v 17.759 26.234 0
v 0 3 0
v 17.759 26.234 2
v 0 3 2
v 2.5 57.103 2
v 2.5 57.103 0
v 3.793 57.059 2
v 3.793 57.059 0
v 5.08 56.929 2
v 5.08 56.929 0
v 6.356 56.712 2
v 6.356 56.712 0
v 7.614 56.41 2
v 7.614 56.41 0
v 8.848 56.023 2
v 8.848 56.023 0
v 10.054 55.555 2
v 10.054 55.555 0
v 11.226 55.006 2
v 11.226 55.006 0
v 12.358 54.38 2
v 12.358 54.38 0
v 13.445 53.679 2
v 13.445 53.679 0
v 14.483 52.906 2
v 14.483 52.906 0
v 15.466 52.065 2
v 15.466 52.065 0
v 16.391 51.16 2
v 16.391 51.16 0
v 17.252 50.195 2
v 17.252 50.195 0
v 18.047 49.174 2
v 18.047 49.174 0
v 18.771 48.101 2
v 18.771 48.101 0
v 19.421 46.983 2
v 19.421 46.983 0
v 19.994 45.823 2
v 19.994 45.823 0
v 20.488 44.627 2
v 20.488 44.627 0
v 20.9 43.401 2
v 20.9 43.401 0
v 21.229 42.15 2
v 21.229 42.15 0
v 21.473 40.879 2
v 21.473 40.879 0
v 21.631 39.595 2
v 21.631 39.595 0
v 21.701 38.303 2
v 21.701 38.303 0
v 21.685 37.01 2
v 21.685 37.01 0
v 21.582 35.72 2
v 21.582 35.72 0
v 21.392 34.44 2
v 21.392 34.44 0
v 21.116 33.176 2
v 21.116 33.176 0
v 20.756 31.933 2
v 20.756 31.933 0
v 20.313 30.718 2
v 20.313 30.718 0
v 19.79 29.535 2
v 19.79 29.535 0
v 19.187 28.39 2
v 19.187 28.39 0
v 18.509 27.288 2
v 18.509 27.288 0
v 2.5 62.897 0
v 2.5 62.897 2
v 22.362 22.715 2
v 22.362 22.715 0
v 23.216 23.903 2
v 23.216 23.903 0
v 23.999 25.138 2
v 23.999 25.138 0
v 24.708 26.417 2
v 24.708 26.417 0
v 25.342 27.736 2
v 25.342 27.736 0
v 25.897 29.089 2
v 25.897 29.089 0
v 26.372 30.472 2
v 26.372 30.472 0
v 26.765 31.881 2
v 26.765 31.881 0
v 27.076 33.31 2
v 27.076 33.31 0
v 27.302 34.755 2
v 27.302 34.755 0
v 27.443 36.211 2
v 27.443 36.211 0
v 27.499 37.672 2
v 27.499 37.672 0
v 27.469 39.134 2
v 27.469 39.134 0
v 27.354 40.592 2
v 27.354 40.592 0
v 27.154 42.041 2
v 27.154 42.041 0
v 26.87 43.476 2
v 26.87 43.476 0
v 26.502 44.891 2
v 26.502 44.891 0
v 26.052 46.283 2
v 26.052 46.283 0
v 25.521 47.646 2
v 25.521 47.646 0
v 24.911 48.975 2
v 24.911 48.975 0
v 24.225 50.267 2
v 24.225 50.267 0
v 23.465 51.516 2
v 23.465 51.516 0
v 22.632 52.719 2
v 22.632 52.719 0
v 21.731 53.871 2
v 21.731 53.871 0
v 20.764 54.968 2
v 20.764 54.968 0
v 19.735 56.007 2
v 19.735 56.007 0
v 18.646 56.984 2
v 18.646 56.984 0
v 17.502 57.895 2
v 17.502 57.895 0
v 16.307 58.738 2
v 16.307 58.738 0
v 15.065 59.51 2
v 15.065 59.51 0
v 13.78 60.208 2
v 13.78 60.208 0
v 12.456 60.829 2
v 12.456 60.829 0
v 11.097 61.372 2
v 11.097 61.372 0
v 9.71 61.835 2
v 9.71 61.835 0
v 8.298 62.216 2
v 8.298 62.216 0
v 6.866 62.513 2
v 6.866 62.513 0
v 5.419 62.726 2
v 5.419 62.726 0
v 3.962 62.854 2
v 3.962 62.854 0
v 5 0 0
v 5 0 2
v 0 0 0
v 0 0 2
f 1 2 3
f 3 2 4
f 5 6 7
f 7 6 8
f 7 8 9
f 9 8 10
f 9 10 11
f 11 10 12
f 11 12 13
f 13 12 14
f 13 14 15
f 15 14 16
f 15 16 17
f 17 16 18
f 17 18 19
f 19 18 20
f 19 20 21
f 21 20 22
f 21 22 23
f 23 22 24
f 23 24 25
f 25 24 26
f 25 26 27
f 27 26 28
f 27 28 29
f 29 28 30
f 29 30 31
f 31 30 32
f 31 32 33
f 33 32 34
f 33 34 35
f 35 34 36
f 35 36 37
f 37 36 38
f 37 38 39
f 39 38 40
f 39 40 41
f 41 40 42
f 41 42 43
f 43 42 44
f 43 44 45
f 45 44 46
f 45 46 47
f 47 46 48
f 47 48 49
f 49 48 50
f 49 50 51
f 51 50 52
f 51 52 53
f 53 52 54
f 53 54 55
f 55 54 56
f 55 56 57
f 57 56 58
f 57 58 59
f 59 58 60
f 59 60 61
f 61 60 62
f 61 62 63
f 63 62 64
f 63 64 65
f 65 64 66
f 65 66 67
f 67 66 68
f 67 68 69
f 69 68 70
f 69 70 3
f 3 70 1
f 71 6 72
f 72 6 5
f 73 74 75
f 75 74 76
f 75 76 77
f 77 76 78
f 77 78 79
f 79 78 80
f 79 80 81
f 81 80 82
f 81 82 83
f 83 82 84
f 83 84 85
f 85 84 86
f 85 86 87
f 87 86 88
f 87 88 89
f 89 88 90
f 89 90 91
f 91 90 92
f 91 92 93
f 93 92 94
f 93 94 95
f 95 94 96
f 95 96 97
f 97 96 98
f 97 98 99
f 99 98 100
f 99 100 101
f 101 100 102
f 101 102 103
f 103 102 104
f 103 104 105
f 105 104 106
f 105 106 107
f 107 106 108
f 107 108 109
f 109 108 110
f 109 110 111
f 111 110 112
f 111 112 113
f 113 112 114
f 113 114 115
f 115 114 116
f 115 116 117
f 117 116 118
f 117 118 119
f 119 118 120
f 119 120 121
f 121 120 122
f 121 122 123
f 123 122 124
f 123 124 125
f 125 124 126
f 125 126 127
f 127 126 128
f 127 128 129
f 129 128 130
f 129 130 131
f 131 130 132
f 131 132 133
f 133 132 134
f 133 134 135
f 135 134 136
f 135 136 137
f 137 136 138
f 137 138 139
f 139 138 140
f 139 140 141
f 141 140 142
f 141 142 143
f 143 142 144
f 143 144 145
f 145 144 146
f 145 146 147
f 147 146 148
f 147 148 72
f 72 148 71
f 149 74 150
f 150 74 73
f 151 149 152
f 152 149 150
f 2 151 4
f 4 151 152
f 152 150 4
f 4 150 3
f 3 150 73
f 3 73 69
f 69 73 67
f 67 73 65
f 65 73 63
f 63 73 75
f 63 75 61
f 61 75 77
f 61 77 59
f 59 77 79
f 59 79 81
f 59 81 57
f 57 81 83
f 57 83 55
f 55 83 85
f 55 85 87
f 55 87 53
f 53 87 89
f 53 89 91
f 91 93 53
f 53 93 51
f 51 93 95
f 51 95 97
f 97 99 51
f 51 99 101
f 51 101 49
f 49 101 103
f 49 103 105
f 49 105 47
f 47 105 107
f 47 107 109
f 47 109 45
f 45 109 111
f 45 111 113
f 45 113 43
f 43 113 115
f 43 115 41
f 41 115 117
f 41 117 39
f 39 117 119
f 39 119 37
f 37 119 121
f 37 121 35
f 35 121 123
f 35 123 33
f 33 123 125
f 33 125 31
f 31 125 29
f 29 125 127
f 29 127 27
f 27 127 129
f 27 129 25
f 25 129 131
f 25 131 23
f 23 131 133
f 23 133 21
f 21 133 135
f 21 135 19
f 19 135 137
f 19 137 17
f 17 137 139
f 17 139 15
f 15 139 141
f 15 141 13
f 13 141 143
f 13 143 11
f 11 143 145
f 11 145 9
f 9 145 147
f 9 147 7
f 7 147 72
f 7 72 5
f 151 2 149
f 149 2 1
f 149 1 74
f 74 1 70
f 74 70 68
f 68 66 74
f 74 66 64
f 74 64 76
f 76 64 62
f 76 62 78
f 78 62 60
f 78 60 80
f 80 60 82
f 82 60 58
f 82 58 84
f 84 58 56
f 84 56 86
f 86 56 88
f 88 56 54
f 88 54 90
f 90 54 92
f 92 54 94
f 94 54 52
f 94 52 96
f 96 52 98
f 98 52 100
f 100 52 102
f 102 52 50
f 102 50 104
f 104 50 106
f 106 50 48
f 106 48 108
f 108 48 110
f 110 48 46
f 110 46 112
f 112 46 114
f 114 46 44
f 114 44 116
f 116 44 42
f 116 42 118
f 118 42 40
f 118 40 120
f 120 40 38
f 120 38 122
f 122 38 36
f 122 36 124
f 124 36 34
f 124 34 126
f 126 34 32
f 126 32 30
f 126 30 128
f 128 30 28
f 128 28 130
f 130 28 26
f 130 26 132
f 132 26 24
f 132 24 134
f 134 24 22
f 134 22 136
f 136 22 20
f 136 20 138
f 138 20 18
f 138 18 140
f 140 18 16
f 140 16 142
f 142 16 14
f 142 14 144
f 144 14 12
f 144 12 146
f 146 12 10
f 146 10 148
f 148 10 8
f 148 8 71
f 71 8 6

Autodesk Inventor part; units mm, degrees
ref_plane "YZ Plane" through (0, 0, 0) normal (1, 0, 0) x (0, 1, 0)
ref_plane "XZ Plane" through (0, 0, 0) normal (0, 1, 0) x (-1, 0, 0)
ref_plane "XY Plane" through (0, 0, 0) normal (0, 0, 1) x (1, 0, 0)
sketch "Skizze1" plane through (0, 0, 0) normal (0, 0, 1) x (1, 0, 0)
  line L0 (0, 0) -> (5, 0)
  line L1 (5, 0) -> (22.3624, 22.7154)
  arc A0 (22.3624, 22.7154) -> (2.5, 62.8971) centre (2.5, 37.8971) ccw
  line L2 (2.5, 62.8971) -> (2.5, 57.1029)
  arc A1 (17.7589, 26.2341) -> (2.5, 57.1029) centre (2.5, 37.8971) ccw
  line L3 (17.7589, 26.2341) -> (0, 3)
  line L4 (0, 3) -> (0, 0)
  point P0 (2.5, 0)
  point P1 (2.5, 60)
  dimension "d0" = 3
  dimension "d1" = 5
  dimension "d2" = 25
  dimension "d3" = 60
extrude "Extrusion1" add sketch "Skizze1" along normal blind 2
properties part number "LEDholderv_3D-Druck"
